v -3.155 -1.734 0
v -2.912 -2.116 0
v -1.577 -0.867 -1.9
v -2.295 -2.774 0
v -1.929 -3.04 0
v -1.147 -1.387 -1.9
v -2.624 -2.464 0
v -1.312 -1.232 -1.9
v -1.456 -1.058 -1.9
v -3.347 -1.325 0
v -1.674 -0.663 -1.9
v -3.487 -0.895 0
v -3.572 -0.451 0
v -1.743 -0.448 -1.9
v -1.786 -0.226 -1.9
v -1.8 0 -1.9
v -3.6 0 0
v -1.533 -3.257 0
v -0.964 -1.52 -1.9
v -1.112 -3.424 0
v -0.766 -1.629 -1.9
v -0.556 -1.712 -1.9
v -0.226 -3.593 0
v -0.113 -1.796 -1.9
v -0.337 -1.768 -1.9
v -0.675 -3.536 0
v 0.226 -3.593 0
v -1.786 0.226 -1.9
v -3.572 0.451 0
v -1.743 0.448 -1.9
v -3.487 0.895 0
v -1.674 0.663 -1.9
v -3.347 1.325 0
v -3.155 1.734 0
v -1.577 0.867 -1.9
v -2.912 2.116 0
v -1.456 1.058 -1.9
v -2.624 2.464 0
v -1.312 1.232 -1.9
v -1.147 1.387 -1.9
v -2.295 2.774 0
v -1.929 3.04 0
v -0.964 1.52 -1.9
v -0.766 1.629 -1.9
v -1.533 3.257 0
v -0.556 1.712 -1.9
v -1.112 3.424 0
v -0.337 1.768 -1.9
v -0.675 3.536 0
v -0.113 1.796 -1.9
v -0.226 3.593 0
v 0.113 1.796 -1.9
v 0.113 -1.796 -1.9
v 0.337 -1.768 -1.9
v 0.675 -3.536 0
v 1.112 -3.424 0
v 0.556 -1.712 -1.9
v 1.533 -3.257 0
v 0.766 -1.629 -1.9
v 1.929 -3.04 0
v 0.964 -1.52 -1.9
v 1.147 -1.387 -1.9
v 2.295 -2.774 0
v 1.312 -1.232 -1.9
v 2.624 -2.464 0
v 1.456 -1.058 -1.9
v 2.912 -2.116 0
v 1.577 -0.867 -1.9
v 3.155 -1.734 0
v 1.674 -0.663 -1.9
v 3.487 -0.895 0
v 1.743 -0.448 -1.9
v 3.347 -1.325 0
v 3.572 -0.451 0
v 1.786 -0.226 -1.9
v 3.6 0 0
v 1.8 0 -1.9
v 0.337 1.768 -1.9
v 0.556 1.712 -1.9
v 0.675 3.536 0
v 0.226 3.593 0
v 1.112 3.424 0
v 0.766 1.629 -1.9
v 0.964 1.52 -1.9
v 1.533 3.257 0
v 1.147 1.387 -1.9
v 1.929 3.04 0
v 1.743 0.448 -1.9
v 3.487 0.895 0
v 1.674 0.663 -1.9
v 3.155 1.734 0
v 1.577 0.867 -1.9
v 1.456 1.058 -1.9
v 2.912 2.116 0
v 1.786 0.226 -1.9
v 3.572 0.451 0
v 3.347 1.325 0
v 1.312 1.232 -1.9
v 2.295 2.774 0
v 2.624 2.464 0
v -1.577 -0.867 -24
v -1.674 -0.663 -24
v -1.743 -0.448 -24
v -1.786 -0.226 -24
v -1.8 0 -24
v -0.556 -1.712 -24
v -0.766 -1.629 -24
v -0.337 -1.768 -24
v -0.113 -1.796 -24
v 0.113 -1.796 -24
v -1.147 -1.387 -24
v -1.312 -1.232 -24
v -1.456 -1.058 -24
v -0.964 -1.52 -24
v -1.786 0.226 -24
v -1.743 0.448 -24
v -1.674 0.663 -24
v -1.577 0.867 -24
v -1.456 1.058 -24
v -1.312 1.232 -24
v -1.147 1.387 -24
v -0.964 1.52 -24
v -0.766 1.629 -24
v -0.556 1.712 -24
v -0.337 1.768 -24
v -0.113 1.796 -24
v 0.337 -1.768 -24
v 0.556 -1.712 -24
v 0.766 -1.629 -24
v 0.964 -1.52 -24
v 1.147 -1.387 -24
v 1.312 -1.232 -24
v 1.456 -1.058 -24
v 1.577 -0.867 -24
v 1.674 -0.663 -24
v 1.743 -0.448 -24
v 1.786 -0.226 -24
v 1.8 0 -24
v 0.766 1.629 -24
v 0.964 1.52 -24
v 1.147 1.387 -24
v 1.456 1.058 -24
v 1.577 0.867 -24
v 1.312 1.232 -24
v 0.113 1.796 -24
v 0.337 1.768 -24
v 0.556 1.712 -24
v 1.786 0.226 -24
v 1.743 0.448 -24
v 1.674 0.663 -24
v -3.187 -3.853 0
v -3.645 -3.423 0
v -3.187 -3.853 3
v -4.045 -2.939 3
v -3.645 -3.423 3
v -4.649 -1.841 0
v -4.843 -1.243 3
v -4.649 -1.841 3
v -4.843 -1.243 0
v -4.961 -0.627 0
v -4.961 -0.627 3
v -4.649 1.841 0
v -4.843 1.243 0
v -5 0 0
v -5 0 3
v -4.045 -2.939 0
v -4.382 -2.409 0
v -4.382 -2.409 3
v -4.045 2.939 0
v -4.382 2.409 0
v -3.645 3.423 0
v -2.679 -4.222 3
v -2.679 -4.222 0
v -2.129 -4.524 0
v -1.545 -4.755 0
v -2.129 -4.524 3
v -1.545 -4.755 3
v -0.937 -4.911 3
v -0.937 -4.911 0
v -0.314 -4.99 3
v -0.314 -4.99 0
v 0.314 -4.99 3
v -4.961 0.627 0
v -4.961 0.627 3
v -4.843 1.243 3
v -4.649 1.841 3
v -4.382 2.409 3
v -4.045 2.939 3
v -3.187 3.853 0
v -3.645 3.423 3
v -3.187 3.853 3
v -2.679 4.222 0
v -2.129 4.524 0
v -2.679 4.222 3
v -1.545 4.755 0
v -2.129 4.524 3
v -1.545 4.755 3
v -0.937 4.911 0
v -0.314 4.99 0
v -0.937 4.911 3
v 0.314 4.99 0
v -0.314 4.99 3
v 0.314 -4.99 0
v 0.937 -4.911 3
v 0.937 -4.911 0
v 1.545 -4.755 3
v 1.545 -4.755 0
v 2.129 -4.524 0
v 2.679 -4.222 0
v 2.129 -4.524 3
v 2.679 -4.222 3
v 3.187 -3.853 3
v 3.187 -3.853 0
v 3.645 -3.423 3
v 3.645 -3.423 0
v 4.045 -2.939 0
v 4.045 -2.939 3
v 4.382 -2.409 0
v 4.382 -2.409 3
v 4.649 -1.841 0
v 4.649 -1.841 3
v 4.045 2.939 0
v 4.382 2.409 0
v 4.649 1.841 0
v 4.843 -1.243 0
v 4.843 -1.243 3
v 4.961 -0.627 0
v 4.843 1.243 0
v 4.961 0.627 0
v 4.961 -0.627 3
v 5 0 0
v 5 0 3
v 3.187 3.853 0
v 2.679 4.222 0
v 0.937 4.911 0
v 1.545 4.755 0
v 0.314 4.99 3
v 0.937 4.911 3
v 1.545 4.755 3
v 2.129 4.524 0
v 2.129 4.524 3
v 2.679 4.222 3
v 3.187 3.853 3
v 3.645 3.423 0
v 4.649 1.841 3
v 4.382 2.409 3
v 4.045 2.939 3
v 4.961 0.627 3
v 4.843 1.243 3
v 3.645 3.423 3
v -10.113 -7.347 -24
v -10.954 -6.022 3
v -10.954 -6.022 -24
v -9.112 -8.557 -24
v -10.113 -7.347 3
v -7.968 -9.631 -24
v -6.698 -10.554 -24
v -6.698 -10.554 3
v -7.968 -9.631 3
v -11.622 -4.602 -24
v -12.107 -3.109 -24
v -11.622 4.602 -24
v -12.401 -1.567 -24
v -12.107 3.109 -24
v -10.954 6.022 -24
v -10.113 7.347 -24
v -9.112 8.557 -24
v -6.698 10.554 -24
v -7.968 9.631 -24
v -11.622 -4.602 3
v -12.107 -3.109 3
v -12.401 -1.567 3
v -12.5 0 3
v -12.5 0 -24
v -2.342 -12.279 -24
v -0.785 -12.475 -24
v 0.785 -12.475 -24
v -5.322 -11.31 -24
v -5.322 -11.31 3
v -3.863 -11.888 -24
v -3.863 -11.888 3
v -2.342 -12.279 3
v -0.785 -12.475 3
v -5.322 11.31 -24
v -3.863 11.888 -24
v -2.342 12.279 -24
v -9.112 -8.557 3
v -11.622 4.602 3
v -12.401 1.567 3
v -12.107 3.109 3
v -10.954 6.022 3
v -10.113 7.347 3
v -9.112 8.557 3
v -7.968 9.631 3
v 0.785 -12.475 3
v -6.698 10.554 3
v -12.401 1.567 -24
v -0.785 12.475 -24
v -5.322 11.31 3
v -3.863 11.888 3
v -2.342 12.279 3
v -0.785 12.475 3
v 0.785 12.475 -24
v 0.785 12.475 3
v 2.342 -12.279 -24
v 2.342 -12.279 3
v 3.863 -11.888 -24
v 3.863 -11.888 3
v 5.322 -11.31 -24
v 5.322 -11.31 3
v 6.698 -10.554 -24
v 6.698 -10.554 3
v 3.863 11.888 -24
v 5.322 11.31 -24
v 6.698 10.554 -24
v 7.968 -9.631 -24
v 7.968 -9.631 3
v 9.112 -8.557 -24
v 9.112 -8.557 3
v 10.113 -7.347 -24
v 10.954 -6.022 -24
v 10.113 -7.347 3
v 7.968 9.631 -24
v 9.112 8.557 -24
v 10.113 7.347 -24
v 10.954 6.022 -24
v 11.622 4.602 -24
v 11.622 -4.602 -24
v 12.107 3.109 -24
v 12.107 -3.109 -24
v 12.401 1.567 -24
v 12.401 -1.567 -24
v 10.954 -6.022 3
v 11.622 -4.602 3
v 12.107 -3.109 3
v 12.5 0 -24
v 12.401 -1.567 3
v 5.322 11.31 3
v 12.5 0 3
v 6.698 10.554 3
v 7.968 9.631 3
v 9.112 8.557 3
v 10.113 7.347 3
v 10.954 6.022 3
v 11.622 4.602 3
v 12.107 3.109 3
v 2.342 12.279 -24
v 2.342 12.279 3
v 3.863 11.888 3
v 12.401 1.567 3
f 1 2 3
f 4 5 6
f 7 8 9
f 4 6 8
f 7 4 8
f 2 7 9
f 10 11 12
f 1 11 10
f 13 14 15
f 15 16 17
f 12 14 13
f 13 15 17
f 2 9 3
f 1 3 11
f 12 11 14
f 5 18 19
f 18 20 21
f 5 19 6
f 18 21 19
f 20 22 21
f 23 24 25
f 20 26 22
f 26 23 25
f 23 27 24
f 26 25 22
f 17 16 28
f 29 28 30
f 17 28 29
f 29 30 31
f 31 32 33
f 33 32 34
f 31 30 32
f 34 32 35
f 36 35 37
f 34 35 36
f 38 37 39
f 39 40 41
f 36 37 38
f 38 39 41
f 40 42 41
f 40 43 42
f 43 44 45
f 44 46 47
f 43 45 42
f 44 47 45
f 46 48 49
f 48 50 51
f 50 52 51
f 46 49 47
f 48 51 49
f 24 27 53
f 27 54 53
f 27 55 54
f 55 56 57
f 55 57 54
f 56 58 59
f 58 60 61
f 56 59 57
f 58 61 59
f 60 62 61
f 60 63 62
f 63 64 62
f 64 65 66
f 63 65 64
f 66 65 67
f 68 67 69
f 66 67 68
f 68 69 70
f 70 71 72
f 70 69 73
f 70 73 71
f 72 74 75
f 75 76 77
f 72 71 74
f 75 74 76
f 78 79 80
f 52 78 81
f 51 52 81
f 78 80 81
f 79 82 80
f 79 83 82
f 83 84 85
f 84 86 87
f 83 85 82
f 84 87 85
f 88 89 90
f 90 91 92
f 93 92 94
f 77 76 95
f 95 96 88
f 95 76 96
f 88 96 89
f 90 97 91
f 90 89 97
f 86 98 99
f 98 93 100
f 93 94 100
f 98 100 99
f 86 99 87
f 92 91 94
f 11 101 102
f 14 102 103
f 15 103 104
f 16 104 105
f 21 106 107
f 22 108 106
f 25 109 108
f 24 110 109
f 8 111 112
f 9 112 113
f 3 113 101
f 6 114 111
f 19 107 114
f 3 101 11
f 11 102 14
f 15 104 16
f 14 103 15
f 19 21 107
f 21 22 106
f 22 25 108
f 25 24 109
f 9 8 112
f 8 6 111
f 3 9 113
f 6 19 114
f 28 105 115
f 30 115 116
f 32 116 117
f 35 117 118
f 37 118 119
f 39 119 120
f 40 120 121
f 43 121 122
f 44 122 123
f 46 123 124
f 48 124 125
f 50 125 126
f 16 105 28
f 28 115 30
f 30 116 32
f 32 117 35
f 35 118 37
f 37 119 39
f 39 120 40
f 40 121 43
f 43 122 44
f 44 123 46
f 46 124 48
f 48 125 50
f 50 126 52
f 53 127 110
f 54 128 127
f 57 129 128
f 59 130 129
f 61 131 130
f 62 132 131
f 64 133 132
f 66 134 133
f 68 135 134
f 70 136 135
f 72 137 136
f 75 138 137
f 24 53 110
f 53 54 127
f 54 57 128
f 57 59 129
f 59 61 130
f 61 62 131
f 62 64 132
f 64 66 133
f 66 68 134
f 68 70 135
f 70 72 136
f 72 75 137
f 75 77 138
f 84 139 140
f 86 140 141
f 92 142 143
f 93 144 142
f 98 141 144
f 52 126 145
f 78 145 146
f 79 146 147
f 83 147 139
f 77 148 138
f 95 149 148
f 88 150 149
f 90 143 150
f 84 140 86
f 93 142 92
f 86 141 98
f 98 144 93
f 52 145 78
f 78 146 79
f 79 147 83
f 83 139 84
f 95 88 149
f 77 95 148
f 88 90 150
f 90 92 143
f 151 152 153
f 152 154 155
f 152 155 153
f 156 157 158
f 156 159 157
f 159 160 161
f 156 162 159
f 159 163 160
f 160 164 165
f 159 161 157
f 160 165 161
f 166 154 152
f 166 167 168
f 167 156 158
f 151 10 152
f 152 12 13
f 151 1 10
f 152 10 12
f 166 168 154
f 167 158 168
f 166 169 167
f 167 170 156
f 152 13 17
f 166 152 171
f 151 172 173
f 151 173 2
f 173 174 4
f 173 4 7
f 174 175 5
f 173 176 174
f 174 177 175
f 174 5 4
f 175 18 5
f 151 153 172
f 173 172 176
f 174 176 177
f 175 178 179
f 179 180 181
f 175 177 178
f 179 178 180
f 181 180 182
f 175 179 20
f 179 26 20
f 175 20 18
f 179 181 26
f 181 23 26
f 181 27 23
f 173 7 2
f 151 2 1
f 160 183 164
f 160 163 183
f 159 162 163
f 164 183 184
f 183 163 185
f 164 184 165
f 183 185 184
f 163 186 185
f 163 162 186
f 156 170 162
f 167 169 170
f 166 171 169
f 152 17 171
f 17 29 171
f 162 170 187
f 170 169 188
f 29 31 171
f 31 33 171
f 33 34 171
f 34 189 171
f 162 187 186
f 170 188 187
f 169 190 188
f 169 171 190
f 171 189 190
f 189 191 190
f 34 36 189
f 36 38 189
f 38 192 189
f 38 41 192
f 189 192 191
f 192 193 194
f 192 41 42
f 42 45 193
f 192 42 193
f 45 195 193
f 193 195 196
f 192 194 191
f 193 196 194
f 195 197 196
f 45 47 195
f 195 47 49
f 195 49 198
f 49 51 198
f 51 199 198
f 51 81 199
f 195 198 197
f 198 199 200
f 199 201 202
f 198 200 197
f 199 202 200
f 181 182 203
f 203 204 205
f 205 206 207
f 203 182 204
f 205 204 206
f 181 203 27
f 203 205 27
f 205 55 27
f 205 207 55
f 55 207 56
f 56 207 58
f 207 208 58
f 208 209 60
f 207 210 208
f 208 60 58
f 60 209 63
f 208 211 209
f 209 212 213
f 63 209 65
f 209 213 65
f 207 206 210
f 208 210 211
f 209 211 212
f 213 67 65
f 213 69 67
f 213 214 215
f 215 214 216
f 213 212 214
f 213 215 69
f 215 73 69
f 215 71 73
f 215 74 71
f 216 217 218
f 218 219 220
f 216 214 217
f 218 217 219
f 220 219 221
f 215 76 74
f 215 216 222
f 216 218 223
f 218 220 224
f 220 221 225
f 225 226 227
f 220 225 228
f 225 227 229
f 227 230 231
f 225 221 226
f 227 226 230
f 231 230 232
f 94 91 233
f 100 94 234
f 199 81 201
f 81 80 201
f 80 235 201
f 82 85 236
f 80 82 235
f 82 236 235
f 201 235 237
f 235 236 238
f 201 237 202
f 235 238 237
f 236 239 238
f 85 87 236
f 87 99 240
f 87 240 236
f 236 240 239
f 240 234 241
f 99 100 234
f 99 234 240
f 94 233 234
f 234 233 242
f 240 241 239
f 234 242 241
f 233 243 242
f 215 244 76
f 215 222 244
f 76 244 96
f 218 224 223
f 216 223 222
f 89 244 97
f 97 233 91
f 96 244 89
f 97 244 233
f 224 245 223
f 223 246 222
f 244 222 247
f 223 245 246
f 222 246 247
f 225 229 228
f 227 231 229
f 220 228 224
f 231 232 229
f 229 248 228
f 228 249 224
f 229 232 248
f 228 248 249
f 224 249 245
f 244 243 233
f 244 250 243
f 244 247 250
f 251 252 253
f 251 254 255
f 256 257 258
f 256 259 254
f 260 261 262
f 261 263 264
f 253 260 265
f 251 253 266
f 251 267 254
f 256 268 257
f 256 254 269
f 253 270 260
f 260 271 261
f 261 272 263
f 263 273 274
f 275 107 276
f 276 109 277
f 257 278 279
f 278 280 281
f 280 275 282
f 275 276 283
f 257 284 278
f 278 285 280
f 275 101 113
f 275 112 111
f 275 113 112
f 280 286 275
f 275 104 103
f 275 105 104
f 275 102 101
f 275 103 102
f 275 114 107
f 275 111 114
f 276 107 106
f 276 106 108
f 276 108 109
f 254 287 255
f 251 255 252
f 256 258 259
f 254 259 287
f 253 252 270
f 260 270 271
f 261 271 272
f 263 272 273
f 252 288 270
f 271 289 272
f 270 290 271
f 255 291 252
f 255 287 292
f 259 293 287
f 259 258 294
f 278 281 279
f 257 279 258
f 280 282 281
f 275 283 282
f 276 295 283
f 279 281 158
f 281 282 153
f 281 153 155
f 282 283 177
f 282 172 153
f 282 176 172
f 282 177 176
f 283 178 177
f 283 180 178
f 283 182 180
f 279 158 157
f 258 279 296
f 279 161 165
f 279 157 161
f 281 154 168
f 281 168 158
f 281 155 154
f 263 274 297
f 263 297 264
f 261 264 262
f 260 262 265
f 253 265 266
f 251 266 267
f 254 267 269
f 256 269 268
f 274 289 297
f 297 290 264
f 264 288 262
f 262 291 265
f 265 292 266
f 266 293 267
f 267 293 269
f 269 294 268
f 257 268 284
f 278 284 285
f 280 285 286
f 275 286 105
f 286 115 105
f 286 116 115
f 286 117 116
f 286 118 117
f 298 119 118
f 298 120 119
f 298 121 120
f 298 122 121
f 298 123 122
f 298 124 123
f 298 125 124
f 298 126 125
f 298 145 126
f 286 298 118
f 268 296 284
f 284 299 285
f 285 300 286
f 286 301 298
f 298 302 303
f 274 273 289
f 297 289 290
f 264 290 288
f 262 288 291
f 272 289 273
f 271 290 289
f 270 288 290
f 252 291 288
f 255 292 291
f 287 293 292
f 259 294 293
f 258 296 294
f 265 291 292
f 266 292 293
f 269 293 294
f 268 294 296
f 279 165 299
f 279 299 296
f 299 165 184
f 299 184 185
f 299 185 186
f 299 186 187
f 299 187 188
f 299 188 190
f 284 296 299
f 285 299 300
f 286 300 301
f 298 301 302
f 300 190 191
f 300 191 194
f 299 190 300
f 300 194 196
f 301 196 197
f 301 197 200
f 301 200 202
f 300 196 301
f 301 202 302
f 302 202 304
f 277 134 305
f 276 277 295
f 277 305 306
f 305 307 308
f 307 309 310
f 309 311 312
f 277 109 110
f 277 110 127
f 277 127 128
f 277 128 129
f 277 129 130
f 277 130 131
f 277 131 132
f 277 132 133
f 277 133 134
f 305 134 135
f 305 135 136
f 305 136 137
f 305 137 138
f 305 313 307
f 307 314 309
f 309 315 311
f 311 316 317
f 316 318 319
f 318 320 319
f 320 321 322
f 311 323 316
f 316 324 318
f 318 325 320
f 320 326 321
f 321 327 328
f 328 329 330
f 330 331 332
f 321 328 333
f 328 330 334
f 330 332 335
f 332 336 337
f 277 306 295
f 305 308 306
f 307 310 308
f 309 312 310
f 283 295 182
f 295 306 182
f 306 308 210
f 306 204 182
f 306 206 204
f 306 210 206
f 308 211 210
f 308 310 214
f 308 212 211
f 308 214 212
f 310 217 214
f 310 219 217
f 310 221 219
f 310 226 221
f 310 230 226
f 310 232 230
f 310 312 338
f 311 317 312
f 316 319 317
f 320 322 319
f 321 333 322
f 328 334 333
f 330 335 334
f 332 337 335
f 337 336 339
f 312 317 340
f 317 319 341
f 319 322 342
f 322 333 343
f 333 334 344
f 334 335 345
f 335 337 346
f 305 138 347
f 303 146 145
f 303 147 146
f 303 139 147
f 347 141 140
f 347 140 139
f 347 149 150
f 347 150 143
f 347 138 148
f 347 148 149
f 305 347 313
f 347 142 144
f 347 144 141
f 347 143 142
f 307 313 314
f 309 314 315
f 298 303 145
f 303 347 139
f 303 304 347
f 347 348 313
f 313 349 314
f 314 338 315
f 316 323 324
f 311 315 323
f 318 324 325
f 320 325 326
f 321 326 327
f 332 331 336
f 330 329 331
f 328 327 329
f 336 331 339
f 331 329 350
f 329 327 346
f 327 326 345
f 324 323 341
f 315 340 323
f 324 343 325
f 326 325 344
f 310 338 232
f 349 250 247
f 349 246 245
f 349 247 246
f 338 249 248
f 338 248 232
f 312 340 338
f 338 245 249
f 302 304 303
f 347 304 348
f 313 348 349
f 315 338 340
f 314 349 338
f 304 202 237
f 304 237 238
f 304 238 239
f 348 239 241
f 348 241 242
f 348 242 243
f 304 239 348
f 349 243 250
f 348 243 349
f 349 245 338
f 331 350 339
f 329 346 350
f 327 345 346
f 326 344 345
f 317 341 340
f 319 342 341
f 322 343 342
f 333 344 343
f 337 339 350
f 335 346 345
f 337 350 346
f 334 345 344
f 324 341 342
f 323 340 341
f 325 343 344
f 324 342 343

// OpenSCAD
$fn = 50;


difference() {
	union() {
		translate(v = [0, 0, -24.0000000000]) {
			cylinder(h = 27, r = 12.5000000000);
		}
	}
	union() {
		translate(v = [0, 0, 0]) {
			rotate(a = [0, 0, 0]) {
				difference() {
					union() {
						translate(v = [0, 0, -27.0000000000]) {
							cylinder(h = 27, r = 1.5000000000);
						}
						translate(v = [0, 0, -1.9000000000]) {
							cylinder(h = 1.9000000000, r1 = 1.8000000000, r2 = 3.6000000000);
						}
						translate(v = [0, 0, -27.0000000000]) {
							cylinder(h = 27, r = 1.8000000000);
						}
						translate(v = [0, 0, -27.0000000000]) {
							cylinder(h = 27, r = 1.5000000000);
						}
					}
					union();
				}
			}
		}
		#cylinder(h = 3, r = 5.0000000000);
	}
}
